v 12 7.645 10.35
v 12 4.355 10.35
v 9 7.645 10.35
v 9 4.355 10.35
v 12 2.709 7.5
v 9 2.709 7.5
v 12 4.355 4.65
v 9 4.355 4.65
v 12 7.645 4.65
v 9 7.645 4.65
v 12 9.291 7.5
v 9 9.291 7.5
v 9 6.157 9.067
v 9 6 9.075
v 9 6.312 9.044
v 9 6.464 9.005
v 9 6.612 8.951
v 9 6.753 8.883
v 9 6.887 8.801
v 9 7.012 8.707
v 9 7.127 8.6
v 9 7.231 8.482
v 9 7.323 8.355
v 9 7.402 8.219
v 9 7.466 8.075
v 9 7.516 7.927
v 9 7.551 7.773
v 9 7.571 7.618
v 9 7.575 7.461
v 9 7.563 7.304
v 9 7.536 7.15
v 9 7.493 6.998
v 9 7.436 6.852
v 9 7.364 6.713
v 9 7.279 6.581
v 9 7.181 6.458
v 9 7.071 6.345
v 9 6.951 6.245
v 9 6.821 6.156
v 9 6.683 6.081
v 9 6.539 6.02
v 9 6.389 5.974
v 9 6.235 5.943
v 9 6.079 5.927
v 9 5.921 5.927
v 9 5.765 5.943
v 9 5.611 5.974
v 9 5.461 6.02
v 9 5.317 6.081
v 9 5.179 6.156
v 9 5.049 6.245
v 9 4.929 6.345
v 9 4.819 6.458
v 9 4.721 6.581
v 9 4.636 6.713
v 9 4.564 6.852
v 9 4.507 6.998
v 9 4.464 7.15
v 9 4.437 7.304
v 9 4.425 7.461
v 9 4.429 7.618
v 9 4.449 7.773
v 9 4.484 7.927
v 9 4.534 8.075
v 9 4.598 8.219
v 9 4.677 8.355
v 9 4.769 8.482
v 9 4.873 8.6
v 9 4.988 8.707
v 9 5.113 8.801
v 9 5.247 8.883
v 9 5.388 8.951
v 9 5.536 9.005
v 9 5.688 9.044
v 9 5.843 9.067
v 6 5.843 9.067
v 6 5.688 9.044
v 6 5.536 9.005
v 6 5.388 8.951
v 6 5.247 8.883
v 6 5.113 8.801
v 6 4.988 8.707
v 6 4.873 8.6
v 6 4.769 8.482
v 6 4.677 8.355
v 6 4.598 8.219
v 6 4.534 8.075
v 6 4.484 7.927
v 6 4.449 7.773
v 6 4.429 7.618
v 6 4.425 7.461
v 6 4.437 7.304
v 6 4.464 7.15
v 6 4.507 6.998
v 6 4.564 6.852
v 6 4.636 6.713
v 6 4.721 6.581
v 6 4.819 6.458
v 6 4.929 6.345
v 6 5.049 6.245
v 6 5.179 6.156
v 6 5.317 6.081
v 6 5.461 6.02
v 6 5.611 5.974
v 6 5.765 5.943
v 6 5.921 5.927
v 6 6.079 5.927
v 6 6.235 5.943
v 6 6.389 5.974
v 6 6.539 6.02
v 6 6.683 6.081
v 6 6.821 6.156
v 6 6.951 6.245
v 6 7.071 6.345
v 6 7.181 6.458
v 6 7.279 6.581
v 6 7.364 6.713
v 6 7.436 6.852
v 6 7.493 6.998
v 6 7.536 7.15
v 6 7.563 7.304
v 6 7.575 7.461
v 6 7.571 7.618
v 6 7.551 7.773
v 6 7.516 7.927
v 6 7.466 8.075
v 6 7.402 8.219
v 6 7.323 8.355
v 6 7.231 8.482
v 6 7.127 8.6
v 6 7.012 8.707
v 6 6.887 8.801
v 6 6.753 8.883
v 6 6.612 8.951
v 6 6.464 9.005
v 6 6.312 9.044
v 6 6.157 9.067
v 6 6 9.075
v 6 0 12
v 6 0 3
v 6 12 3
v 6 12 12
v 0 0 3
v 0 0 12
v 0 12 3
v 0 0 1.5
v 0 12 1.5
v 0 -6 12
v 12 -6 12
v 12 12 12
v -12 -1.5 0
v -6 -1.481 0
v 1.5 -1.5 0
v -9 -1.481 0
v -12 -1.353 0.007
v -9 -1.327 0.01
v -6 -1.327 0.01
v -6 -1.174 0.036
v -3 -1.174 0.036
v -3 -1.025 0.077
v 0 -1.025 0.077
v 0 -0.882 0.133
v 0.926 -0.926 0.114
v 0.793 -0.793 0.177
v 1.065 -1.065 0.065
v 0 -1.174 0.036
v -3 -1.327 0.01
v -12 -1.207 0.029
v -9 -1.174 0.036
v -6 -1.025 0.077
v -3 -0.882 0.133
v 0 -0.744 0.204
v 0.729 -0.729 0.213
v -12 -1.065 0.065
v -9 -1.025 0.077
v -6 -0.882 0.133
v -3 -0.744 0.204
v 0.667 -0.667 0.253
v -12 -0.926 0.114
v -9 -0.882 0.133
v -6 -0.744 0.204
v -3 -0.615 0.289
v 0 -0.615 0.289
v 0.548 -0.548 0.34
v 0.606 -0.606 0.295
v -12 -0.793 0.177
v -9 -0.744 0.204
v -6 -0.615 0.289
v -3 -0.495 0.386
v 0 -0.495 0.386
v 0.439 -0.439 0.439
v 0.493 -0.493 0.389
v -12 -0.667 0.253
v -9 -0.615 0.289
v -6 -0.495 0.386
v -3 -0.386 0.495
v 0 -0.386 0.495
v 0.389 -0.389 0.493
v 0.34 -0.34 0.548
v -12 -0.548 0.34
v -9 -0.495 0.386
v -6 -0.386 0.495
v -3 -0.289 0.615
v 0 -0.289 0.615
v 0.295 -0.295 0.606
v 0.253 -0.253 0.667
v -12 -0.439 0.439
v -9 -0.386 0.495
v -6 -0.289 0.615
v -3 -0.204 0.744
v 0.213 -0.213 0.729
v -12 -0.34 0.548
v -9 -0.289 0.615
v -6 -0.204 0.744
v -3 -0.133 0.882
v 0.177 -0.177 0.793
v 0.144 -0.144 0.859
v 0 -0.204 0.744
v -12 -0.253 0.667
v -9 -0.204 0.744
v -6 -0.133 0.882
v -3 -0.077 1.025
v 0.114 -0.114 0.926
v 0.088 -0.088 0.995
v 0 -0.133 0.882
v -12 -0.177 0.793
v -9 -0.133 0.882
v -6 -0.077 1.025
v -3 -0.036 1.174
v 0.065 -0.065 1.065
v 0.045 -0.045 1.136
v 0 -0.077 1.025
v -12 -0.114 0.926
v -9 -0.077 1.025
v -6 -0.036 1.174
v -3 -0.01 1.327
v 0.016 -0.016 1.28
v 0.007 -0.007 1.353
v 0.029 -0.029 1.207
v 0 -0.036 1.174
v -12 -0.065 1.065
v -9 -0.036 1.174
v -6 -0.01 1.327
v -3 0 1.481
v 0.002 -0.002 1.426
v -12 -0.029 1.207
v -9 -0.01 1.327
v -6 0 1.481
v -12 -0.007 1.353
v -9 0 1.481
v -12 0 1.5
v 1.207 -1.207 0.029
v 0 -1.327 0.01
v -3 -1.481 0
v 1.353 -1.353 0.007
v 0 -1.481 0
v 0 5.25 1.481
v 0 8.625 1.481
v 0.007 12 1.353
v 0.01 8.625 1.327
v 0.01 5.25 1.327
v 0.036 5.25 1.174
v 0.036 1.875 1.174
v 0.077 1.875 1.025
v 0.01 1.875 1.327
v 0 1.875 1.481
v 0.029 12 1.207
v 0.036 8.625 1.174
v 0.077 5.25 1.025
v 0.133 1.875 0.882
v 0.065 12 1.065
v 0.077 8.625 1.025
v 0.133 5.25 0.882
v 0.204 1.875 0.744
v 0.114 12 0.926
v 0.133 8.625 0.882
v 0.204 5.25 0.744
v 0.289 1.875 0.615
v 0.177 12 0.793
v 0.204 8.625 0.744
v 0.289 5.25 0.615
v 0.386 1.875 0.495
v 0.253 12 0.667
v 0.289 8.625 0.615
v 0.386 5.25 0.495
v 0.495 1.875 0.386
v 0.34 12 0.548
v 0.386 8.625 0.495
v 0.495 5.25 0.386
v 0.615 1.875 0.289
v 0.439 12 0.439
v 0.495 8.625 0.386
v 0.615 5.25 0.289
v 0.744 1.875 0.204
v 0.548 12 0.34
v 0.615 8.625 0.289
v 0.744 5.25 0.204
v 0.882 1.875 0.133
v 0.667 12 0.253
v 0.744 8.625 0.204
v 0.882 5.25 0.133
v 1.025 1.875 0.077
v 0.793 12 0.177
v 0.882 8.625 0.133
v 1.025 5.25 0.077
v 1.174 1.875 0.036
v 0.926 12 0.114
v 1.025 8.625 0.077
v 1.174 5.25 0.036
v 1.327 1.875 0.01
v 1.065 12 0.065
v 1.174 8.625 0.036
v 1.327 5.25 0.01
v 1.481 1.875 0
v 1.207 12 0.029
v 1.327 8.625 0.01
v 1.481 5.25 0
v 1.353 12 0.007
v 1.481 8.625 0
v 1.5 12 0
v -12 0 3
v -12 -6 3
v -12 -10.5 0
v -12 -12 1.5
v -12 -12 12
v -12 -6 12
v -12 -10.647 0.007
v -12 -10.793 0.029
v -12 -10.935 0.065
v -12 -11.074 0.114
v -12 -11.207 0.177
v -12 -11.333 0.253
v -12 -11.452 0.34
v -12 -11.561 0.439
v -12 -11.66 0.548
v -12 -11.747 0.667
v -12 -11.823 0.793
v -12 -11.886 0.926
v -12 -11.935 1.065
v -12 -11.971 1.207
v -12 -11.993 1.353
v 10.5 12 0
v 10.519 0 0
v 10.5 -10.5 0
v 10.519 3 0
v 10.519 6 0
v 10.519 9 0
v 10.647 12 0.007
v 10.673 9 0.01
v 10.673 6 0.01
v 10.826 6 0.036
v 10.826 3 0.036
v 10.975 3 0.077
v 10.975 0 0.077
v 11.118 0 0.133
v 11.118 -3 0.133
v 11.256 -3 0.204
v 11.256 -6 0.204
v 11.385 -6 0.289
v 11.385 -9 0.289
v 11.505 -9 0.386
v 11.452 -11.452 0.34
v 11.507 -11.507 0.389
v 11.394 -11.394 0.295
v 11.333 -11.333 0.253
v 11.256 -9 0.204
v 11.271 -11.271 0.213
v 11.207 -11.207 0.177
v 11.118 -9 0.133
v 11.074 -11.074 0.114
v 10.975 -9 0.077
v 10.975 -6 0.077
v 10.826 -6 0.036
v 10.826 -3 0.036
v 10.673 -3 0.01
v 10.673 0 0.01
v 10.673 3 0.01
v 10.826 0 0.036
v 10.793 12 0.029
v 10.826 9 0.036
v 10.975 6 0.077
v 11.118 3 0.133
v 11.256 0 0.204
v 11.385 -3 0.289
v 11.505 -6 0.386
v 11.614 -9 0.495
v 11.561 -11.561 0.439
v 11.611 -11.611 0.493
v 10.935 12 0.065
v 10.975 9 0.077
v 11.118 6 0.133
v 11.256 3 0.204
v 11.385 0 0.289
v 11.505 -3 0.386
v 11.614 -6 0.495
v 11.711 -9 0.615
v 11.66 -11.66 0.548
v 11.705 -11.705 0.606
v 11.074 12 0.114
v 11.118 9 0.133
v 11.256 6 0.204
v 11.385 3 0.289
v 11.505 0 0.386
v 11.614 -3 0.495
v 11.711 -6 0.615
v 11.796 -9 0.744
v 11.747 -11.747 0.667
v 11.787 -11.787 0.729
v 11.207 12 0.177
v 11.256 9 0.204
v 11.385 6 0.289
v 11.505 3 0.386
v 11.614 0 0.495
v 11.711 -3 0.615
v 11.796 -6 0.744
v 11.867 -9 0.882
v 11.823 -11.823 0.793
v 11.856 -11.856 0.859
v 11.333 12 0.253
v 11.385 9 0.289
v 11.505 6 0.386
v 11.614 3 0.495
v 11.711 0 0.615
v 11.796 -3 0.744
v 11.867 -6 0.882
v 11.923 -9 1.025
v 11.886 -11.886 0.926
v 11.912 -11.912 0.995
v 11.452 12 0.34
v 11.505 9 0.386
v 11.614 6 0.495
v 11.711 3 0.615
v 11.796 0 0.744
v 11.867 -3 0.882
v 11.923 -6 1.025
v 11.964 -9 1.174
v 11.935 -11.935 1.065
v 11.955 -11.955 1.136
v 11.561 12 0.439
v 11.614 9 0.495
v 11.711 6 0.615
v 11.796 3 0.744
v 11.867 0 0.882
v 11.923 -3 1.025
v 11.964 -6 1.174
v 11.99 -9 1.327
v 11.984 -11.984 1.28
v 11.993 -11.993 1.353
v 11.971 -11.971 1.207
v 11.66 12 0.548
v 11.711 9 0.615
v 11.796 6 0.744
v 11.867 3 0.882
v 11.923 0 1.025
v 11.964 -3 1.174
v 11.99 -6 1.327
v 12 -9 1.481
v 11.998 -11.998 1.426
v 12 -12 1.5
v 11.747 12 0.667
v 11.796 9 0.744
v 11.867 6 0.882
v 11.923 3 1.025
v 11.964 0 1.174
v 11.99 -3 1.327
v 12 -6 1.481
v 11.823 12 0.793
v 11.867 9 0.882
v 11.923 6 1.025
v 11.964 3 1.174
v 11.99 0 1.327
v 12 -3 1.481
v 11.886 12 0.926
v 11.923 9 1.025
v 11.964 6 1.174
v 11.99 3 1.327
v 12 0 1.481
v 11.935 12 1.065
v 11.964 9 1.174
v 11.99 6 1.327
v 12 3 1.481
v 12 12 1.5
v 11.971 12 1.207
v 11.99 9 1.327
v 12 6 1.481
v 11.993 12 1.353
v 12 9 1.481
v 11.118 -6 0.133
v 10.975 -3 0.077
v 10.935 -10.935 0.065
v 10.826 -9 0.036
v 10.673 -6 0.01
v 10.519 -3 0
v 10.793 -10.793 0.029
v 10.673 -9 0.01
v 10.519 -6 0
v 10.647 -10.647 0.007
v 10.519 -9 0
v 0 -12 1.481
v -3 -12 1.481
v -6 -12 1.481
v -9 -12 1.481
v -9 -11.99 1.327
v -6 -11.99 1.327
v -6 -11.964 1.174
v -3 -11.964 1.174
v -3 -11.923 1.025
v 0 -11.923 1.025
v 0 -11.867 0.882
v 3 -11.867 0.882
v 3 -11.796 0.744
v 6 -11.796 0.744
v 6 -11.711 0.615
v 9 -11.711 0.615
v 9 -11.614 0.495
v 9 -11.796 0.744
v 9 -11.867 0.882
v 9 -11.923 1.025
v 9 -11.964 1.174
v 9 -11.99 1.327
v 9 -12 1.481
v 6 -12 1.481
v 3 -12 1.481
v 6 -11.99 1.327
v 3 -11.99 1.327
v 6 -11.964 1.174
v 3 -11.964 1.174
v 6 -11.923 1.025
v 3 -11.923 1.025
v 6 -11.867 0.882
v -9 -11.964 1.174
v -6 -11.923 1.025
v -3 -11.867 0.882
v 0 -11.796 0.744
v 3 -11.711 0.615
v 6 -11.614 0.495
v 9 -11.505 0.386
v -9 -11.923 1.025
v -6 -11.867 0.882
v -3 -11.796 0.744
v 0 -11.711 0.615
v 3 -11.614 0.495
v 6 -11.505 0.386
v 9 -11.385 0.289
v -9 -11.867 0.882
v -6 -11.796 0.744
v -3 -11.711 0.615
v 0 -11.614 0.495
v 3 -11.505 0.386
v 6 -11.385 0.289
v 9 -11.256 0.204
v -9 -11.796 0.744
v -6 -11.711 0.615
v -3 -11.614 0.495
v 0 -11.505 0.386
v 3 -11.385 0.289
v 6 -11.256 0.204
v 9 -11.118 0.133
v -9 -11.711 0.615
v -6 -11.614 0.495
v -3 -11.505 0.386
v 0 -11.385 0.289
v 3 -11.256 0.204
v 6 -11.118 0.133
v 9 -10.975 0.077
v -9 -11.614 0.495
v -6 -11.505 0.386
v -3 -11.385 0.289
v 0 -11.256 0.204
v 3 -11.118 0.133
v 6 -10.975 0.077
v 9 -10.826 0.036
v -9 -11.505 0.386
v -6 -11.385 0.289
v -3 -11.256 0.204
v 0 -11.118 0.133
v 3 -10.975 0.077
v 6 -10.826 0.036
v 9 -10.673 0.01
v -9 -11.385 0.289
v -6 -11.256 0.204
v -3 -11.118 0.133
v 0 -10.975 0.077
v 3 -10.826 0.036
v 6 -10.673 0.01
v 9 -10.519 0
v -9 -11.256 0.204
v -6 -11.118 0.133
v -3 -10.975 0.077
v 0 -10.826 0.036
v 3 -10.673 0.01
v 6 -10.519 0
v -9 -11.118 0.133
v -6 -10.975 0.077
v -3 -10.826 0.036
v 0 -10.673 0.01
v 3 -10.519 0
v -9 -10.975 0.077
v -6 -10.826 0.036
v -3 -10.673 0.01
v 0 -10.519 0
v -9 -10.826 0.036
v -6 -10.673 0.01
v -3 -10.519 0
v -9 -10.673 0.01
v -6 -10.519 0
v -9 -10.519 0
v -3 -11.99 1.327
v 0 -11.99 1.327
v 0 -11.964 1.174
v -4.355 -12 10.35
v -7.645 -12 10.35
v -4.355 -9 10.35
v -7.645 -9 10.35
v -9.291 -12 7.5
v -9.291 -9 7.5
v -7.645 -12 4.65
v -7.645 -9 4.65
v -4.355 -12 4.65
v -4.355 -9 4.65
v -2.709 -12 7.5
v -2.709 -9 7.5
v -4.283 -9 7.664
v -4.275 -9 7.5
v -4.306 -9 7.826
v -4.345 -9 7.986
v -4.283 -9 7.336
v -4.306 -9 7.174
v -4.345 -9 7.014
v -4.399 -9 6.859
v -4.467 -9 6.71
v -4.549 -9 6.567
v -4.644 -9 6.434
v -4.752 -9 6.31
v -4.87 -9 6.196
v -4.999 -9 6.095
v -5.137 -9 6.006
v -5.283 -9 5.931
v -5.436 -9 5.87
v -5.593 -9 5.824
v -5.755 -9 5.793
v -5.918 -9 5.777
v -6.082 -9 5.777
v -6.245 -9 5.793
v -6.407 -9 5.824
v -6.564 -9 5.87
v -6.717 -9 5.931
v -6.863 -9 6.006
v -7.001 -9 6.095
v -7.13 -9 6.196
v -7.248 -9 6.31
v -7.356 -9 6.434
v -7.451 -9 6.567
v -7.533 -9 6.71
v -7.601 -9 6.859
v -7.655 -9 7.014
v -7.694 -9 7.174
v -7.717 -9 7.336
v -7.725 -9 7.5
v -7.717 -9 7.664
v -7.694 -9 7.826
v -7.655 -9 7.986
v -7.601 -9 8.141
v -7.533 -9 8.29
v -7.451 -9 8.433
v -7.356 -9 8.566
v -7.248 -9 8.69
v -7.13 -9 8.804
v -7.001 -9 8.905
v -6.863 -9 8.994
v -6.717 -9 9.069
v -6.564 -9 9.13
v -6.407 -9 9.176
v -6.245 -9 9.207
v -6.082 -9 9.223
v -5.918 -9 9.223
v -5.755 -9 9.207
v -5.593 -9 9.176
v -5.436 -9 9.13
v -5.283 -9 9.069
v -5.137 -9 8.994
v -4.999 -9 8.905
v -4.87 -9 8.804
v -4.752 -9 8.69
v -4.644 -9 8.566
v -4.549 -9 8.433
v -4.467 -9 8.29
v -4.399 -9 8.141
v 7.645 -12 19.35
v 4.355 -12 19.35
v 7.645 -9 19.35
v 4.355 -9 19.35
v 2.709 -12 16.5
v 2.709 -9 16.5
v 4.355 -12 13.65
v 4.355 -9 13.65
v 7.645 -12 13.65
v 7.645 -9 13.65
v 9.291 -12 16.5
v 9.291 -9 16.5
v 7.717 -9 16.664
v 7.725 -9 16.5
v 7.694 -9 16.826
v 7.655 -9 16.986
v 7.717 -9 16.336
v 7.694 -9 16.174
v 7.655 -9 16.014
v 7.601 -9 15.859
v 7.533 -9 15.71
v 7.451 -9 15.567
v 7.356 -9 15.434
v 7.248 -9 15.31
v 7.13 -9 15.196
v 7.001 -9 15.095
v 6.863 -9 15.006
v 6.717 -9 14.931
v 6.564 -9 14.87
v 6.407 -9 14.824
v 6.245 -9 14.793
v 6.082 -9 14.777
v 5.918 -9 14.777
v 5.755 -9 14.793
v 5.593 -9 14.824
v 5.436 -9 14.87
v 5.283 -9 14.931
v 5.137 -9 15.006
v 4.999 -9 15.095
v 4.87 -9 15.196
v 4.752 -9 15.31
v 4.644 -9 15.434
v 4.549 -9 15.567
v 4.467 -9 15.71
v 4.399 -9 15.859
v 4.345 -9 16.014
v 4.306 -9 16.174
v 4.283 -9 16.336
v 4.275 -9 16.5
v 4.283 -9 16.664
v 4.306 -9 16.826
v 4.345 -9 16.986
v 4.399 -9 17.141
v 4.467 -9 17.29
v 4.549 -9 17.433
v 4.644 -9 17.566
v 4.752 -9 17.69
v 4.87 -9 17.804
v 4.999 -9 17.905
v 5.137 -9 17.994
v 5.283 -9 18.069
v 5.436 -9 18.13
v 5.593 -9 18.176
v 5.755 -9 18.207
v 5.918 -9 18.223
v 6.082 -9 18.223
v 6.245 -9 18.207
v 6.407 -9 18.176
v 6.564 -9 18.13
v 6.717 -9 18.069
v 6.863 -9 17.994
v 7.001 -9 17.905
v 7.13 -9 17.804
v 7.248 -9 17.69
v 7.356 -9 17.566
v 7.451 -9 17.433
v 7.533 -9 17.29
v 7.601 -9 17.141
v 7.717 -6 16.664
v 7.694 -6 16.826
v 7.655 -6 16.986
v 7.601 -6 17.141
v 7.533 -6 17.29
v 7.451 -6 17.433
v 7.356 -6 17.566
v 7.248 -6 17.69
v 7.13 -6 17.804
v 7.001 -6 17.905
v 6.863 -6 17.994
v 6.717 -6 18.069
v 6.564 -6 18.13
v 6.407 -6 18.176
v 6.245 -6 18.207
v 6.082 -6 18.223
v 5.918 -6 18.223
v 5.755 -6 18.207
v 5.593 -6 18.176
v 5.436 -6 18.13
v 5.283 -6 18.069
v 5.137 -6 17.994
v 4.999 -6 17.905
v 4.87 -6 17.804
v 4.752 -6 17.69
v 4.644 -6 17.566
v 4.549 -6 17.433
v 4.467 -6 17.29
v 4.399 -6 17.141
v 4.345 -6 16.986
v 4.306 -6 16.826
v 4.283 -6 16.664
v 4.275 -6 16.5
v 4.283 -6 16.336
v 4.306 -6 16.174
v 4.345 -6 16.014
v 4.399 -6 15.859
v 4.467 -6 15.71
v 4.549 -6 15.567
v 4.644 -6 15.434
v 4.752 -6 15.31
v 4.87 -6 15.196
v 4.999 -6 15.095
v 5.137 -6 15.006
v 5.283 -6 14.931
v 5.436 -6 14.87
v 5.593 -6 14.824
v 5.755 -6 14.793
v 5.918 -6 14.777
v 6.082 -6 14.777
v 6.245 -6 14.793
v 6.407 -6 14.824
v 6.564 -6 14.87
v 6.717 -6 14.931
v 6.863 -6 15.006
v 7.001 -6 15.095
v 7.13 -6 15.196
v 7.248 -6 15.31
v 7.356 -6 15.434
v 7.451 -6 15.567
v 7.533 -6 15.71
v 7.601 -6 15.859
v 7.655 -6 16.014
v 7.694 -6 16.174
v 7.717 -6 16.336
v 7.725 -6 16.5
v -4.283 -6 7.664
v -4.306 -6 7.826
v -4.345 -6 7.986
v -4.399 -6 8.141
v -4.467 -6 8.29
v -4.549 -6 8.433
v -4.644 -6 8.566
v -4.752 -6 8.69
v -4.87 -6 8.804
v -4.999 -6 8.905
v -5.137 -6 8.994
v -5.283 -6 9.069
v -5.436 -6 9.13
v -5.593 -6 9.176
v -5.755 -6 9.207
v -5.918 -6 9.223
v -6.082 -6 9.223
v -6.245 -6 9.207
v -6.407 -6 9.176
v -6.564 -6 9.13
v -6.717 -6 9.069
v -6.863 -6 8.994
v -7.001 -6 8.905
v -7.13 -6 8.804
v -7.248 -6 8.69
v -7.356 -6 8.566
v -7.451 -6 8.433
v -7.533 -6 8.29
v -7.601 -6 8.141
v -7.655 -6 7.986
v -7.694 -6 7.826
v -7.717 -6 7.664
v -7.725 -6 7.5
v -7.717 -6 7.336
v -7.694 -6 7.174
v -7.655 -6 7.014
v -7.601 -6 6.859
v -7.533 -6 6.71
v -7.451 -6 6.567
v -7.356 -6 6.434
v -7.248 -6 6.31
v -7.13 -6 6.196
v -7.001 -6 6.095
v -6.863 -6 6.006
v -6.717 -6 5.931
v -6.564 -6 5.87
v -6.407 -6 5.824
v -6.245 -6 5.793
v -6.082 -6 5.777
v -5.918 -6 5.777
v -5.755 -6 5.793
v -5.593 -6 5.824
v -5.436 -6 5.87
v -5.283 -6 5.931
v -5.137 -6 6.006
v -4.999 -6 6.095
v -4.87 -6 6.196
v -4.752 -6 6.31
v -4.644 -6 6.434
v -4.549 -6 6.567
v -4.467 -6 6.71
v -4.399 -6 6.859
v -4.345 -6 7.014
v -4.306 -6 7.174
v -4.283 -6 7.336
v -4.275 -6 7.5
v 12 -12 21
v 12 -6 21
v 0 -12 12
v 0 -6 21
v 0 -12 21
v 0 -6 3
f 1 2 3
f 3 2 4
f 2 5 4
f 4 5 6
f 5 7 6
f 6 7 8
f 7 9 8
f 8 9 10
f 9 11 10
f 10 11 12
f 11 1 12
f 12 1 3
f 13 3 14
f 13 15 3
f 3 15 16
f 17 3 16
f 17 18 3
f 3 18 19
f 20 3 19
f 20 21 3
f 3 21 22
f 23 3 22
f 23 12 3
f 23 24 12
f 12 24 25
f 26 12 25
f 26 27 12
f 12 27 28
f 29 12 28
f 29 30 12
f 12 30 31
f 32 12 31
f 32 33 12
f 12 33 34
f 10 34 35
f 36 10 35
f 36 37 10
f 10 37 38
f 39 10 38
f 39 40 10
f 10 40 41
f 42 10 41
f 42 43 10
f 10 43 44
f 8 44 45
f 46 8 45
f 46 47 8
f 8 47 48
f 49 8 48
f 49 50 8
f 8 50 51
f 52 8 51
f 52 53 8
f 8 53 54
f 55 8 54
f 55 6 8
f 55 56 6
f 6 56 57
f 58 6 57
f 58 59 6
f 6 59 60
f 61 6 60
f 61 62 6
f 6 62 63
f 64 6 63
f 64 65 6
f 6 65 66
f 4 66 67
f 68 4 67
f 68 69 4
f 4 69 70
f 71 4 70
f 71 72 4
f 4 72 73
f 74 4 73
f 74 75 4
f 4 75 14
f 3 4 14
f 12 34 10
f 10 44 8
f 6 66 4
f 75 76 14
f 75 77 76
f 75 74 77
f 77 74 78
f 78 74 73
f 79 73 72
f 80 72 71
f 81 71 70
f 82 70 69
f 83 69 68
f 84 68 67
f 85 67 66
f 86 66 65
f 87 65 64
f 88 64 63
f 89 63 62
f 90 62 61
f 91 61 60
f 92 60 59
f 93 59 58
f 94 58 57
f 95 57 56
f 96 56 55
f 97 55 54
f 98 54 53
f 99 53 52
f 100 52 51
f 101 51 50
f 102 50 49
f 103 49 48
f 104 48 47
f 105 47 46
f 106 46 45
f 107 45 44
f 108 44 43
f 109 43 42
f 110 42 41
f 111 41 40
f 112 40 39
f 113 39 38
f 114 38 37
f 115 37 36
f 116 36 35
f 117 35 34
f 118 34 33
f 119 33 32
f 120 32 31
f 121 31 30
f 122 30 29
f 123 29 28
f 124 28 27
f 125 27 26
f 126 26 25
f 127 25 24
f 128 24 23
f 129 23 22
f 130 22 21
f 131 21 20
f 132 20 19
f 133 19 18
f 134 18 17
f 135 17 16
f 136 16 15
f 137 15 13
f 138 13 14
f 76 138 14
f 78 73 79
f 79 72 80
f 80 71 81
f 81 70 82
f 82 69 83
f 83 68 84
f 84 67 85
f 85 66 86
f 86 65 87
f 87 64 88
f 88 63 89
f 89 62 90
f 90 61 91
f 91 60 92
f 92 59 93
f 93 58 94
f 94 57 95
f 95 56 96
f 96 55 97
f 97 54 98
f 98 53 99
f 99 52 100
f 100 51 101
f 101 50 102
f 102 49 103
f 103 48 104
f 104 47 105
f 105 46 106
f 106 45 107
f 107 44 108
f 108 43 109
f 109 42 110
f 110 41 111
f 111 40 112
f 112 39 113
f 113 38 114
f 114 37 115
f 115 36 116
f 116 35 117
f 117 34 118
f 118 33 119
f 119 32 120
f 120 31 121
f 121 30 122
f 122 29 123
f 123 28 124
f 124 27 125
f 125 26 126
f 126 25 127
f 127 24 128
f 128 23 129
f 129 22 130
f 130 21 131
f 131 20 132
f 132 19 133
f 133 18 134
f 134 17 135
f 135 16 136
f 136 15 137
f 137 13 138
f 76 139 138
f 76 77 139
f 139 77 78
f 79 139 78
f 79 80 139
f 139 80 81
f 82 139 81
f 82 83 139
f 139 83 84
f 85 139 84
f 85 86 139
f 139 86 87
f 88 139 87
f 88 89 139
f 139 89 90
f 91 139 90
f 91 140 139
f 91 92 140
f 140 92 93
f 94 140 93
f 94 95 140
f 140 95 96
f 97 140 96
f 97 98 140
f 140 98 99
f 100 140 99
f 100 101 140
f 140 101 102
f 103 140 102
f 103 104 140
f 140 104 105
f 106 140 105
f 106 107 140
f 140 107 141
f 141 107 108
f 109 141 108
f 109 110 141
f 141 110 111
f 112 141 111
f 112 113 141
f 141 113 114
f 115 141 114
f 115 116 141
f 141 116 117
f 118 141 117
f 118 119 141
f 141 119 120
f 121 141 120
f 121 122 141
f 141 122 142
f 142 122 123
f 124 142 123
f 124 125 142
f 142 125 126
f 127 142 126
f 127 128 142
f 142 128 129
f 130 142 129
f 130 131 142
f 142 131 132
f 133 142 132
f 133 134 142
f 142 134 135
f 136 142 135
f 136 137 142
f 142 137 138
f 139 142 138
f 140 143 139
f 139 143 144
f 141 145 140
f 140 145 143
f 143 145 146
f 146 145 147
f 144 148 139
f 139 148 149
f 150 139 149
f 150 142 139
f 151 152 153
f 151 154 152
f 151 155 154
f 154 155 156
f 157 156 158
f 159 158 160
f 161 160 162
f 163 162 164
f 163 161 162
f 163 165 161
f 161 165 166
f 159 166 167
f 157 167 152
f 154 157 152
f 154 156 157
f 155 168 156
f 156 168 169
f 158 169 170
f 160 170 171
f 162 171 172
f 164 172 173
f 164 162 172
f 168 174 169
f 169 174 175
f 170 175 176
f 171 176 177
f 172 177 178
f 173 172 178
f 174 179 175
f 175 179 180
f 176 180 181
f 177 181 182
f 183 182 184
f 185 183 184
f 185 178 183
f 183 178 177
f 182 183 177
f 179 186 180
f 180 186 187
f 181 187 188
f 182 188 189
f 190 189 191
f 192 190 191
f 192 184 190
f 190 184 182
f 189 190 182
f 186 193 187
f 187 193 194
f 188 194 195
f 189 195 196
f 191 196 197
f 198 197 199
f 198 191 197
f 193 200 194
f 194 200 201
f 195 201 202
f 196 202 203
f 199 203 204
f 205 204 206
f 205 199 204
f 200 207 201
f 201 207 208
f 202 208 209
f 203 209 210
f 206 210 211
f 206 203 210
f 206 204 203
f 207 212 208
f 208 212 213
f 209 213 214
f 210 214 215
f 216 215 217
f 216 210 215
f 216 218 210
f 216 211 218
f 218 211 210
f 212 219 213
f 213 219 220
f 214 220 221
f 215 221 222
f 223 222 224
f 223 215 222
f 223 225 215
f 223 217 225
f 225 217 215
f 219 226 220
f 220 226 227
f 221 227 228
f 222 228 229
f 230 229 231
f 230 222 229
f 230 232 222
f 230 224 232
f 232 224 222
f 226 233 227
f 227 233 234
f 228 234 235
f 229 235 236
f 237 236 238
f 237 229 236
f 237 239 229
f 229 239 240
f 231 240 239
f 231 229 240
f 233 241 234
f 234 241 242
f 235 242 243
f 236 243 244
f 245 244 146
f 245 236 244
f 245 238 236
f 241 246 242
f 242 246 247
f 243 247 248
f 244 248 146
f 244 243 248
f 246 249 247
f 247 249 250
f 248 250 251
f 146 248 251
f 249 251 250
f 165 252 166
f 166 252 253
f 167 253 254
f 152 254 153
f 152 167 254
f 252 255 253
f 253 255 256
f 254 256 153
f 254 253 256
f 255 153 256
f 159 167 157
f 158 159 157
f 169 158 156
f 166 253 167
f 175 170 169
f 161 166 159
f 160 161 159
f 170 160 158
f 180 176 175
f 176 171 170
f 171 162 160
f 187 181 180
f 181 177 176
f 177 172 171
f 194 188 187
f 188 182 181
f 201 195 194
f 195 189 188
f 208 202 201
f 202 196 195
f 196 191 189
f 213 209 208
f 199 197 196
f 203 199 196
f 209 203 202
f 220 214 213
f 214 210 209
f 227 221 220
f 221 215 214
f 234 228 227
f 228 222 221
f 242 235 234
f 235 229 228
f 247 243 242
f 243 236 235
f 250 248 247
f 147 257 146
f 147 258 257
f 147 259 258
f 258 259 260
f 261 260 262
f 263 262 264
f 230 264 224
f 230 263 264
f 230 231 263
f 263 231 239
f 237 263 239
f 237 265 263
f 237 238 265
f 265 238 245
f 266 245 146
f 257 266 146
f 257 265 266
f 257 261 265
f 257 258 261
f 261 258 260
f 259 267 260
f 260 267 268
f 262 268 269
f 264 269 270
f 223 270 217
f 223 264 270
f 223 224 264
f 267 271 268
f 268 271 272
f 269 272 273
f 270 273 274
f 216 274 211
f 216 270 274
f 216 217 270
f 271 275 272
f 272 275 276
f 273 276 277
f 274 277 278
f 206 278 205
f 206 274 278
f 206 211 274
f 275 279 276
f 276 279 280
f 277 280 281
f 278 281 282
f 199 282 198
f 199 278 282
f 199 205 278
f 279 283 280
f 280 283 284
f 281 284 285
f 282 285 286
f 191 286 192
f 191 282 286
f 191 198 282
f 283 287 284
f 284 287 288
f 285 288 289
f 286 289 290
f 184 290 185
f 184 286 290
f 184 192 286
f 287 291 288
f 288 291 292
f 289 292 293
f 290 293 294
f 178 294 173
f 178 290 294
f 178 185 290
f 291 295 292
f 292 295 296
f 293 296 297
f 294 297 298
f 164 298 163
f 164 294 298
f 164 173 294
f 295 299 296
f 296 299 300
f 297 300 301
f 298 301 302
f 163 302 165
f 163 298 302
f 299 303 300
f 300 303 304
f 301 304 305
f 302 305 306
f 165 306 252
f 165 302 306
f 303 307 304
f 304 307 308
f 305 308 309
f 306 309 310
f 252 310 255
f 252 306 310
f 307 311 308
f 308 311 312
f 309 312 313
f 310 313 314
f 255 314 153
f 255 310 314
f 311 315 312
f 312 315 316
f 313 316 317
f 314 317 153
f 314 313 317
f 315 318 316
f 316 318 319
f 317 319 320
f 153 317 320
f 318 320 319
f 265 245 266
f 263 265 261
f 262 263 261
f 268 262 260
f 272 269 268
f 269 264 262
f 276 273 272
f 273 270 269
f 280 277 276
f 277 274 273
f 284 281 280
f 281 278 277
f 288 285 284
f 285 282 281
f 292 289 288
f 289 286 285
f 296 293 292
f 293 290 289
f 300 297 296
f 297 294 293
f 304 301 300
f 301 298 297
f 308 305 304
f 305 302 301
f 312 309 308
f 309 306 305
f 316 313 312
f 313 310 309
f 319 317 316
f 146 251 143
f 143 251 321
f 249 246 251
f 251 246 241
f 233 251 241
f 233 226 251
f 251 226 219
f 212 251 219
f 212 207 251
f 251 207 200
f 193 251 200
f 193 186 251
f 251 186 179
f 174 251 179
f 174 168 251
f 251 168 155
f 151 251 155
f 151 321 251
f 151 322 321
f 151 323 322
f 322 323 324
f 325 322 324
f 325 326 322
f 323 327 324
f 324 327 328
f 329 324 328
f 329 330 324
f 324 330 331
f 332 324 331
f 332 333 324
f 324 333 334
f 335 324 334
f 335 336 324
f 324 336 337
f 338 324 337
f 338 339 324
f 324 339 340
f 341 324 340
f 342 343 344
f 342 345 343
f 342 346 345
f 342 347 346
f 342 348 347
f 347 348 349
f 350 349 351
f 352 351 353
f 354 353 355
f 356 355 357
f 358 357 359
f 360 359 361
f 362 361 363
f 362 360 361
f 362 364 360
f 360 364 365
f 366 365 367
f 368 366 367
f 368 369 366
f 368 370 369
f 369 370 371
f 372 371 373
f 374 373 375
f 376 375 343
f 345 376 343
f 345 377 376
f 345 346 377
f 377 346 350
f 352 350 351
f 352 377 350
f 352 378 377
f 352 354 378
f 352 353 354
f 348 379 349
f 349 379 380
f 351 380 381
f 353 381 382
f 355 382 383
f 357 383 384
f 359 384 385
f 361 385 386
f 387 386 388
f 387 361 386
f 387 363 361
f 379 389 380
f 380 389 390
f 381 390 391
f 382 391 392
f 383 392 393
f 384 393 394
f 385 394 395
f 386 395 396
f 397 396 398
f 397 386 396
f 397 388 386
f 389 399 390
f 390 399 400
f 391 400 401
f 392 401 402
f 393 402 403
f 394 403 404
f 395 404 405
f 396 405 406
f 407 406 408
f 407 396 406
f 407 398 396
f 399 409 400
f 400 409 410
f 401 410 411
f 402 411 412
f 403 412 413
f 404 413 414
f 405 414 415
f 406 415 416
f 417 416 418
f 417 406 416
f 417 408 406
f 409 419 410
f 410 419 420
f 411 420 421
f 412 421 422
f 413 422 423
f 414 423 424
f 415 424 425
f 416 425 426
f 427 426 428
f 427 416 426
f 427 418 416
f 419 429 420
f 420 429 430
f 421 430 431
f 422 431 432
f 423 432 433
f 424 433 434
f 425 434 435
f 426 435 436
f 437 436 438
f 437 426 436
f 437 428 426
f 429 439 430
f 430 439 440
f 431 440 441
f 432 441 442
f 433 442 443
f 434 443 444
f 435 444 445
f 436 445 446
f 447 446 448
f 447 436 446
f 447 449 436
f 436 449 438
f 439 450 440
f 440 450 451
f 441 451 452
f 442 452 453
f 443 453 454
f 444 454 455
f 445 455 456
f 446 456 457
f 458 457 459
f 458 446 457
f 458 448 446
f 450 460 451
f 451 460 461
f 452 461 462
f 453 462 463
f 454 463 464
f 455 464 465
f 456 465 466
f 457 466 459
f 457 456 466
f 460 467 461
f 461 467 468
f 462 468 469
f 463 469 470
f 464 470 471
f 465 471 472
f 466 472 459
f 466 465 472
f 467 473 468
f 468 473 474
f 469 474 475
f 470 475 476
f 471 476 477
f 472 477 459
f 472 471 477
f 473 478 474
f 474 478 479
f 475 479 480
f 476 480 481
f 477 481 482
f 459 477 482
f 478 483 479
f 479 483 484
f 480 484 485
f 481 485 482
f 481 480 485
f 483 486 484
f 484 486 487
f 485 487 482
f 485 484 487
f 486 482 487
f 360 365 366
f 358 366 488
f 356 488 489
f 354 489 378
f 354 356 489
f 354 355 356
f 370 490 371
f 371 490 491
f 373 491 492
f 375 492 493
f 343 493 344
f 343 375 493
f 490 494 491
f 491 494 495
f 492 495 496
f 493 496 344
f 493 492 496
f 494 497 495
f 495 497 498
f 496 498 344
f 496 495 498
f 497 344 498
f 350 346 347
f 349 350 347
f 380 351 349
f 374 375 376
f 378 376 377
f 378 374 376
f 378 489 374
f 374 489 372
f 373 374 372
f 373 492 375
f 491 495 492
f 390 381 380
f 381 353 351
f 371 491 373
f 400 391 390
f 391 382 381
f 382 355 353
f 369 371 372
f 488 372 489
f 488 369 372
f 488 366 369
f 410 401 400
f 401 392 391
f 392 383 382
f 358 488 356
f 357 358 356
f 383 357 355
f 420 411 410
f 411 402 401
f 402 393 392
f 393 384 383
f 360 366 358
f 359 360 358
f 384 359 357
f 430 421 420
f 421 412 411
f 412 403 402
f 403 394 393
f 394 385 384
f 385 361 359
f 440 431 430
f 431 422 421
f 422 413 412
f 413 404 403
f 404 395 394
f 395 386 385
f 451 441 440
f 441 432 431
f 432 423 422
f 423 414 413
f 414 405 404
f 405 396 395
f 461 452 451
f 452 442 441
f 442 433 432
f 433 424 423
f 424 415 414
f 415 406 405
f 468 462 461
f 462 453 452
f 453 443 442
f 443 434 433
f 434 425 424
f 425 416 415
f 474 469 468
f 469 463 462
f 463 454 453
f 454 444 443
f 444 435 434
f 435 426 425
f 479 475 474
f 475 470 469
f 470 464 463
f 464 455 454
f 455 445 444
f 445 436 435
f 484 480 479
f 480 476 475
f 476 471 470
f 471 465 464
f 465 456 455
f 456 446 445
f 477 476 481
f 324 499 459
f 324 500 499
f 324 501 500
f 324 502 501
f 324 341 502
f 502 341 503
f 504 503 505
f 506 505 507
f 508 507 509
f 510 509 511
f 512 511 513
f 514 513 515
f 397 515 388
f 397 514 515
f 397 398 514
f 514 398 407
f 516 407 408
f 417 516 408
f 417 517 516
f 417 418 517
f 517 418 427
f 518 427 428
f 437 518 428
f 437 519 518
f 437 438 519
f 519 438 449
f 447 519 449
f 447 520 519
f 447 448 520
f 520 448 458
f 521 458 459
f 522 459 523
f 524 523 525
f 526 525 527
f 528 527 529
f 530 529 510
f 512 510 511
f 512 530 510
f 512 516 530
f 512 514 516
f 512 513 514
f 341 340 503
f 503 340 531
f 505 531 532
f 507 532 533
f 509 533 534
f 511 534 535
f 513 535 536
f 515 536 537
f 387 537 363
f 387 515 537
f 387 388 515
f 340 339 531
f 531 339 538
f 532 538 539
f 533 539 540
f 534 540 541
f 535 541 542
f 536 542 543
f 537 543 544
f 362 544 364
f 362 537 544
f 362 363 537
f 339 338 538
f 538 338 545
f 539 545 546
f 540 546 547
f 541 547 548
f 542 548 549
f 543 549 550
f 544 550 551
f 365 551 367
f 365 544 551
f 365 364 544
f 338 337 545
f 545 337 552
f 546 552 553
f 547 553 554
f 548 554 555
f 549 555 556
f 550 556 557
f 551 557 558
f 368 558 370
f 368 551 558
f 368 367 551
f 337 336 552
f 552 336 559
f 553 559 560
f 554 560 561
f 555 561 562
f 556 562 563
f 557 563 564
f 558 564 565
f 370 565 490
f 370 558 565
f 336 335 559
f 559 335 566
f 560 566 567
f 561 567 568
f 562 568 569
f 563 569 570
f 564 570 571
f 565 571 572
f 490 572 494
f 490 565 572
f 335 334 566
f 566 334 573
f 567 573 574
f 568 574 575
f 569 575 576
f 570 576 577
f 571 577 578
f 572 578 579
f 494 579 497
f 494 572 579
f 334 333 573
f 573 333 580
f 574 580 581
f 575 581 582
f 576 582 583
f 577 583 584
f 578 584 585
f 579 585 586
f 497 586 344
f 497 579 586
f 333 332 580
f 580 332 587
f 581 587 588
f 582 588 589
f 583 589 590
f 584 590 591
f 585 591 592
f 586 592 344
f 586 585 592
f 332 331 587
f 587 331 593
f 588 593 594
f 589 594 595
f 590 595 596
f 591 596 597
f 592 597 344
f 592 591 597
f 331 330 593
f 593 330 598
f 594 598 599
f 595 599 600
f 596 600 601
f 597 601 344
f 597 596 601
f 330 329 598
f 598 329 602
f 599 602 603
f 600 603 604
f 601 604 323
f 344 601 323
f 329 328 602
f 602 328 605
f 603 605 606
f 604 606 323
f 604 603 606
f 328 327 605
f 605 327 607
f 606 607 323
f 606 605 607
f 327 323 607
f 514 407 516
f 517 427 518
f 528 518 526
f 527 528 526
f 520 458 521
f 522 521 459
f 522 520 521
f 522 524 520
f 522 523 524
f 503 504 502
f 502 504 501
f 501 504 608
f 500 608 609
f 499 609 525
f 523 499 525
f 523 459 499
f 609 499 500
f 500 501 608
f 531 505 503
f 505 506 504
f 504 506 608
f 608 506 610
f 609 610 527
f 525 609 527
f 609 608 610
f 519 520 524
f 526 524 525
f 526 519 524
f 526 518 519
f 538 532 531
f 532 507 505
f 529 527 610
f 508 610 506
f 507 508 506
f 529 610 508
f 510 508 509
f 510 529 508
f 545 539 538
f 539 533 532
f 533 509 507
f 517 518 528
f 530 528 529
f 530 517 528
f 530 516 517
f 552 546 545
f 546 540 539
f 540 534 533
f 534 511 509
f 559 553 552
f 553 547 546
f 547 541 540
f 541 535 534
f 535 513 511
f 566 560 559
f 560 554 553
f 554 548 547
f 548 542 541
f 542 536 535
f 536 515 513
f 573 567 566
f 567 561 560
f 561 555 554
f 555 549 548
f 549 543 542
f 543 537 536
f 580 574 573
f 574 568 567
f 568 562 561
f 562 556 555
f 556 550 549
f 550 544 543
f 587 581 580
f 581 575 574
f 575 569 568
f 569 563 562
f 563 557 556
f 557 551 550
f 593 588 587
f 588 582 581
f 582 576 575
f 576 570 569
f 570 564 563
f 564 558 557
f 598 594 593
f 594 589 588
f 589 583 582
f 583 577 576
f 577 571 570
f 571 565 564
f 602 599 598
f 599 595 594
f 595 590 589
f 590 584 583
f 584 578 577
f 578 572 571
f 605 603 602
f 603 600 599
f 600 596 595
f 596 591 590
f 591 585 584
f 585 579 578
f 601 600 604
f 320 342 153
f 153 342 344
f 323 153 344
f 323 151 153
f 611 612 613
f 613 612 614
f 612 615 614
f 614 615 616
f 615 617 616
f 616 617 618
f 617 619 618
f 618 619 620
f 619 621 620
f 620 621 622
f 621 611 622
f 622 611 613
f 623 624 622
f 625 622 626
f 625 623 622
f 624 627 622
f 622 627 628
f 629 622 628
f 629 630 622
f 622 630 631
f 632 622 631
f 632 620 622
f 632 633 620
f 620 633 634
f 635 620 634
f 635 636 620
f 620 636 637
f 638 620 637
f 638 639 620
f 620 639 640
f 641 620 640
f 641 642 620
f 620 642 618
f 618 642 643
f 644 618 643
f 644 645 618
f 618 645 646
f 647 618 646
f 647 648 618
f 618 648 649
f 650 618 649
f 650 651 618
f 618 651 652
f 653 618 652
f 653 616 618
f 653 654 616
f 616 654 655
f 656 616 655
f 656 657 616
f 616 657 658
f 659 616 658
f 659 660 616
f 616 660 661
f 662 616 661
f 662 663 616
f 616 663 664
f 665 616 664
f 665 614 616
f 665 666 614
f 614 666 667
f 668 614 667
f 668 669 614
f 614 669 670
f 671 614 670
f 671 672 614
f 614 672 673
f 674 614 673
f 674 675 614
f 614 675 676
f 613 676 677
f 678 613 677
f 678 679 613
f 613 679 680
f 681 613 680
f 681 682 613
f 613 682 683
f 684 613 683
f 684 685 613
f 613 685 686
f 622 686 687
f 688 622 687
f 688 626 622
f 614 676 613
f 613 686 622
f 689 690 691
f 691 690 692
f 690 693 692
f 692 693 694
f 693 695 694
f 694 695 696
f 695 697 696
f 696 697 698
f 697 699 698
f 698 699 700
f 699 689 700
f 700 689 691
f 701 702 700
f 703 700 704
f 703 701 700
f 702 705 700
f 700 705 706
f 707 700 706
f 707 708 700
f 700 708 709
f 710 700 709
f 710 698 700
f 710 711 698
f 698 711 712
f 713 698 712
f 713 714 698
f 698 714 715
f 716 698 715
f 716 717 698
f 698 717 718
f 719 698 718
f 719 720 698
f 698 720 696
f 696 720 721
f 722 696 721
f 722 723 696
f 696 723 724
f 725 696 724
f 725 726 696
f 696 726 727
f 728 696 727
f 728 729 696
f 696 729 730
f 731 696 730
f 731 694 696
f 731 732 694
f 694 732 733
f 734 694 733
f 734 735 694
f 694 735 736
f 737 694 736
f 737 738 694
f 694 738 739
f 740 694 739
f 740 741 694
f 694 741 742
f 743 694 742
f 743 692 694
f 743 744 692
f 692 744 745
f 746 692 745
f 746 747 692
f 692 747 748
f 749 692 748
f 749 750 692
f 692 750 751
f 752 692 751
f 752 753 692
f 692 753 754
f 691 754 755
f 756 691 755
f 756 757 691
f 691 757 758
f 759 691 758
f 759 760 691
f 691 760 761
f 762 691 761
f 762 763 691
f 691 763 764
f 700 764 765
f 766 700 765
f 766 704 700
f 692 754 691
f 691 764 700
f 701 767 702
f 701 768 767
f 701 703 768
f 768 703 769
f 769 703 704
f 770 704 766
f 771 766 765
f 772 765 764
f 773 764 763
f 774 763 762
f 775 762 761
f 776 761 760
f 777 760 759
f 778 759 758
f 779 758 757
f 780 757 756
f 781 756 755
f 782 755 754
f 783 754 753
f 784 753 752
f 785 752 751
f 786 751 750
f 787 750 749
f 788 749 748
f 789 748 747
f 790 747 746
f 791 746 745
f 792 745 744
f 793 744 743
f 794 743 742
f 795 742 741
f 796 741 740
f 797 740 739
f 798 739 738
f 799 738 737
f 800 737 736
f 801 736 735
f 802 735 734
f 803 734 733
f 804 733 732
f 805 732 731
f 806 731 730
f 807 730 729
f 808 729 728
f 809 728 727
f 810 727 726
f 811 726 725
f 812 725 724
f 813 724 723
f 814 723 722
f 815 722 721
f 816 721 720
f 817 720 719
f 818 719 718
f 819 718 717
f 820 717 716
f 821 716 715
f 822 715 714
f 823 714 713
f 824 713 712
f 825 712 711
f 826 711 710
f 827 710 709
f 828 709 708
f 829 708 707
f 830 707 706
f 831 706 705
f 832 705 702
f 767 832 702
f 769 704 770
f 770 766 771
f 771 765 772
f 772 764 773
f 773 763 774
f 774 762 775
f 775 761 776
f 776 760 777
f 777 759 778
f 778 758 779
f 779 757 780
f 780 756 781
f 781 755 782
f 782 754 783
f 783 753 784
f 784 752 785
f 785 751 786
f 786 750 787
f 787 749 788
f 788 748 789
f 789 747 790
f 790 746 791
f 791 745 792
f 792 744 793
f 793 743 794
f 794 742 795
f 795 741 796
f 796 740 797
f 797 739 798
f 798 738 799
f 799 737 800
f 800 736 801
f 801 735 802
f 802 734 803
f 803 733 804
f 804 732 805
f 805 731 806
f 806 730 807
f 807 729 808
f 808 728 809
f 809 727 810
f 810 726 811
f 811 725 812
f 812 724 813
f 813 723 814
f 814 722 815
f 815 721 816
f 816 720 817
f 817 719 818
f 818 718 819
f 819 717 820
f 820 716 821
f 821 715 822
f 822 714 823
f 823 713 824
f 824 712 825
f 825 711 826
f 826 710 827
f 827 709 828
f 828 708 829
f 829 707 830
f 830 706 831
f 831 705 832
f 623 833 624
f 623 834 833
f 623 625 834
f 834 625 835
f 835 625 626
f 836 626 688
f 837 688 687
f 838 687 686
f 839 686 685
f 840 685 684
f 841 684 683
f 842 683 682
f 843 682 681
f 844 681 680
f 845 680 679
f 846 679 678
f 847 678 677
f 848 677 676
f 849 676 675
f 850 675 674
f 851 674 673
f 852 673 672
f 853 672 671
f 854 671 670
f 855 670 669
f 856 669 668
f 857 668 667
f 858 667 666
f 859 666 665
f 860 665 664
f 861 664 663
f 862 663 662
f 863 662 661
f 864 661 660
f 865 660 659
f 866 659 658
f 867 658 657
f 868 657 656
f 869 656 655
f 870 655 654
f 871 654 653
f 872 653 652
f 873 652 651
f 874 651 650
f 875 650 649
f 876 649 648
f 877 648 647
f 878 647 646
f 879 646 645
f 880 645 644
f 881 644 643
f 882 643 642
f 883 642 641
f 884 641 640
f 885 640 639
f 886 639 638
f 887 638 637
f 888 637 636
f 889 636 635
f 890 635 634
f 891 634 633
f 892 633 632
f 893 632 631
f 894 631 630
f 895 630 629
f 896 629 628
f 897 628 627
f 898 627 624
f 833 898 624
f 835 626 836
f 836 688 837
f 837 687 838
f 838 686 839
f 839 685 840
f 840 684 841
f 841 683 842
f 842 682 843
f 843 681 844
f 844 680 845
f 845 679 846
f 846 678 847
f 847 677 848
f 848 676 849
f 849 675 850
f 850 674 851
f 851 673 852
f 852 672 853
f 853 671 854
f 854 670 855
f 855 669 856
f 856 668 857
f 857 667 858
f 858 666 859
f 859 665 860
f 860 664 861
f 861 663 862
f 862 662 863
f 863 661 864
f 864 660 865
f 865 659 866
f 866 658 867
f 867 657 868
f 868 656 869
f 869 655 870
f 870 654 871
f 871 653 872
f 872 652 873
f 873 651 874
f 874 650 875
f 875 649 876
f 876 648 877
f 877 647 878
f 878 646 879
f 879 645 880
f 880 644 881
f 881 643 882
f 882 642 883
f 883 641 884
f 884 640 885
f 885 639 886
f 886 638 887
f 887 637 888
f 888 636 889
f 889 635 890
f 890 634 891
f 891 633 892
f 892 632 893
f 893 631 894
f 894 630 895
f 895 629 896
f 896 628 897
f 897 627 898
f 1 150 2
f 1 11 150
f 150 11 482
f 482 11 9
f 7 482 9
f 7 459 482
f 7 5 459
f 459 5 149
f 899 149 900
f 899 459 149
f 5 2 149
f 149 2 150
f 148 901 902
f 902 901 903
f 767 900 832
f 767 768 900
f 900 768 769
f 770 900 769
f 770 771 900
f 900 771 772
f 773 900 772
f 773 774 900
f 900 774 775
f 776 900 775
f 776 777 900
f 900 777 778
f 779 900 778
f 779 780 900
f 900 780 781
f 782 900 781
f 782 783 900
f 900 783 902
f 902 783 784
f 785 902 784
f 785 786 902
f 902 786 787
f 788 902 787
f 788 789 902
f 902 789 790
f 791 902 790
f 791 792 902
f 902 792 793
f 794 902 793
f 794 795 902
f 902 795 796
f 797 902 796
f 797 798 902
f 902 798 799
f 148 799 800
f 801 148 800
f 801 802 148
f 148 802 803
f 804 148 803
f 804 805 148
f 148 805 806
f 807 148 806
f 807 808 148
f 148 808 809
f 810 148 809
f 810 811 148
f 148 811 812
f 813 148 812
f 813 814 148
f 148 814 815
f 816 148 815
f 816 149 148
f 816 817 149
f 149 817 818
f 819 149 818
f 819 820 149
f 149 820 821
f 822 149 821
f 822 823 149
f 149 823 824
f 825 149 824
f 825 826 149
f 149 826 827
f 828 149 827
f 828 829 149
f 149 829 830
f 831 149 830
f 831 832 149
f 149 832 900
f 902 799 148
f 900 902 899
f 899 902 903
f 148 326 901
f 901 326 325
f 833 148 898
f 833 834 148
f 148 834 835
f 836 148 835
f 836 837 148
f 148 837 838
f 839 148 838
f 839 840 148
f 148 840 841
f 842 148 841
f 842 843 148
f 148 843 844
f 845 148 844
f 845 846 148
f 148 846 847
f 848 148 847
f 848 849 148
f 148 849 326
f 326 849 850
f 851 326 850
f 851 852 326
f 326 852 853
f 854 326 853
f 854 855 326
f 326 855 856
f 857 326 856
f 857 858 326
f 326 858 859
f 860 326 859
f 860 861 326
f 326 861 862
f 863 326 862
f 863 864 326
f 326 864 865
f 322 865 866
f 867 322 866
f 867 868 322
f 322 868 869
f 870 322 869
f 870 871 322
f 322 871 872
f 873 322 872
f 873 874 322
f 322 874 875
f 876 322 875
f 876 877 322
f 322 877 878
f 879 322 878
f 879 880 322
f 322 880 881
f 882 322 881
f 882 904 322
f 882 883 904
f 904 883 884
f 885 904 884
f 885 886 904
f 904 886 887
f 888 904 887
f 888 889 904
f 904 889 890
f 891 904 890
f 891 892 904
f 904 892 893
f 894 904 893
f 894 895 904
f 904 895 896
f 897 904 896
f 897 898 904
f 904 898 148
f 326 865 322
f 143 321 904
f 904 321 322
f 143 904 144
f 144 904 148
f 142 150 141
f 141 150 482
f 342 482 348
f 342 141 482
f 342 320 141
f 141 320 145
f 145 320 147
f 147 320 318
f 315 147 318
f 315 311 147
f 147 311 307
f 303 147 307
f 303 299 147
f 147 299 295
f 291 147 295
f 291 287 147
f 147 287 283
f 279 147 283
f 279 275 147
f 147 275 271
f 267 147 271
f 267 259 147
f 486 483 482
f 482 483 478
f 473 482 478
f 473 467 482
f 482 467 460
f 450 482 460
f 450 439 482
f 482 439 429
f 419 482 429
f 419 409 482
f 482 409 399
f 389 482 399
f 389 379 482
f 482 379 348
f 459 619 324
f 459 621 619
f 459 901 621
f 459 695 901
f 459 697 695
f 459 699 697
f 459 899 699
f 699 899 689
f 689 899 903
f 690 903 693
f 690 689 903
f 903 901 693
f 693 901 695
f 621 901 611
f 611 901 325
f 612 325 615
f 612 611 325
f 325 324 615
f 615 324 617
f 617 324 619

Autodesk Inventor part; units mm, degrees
ref_plane "YZ Plane" through (0, 0, 0) normal (1, 0, 0) x (0, 1, 0)
ref_plane "XZ Plane" through (0, 0, 0) normal (0, 1, 0) x (-1, 0, 0)
ref_plane "XY Plane" through (0, 0, 0) normal (0, 0, 1) x (1, 0, 0)
sketch "Sketch1" plane through (0, 0, 0) normal (0, 0, 1) x (1, 0, 0)
  line L0 (0, 0) -> (12, 0)
  line L1 (12, 0) -> (12, 12)
  line L2 (12, 12) -> (0, 12)
  line L3 (0, 12) -> (0, 0)
  line L4 (12, 0) -> (0, 0)
  line L5 (0, 0) -> (0, -12)
  line L6 (0, -12) -> (12, -12)
  line L7 (12, -12) -> (12, 0)
  line L8 (12, 0) -> (24, 0)
  line L9 (24, 0) -> (24, -12)
  line L10 (24, -12) -> (12, -12)
  line L11 (12, -12) -> (12, 0)
  line L12 (0, -12) -> (-12, -12)
  line L13 (-12, -12) -> (-12, 0)
  line L14 (-12, 0) -> (0, 0)
  line L15 (0, 0) -> (0, -12)
  line L16 (0, -12) -> (12, -12)
  line L17 (12, -12) -> (12, -24)
  line L18 (12, -24) -> (0, -24)
  line L19 (0, -24) -> (0, -12)
  dimension "d0" = 12
  dimension "d1" = 12
  dimension "d2" = 12
  dimension "d3" = 12
  dimension "d4" = 12
  dimension "d5" = 12
  dimension "d6" = 12
  dimension "d7" = 12
  dimension "d8" = 12
  dimension "d9" = 12
extrude "Extrusion1" add sketch "Sketch1" along normal blind 3
sketch "Sketch2" plane through (0, 0, 3) normal (0, 0, 1) x (1, 0, 0)
  line L0 (-12, 0) -> (-12, -12) projected
  line L1 (-12, -12) -> (-12, -6)
  line L2 (-12, -6) -> (0, -6)
  line L3 (-12, -12) -> (0, -12) projected
  line L4 (0, -6) -> (0, -12)
  line L5 (0, -12) -> (-12, -12)
  line L6 (12, -24) -> (12, -12) projected
  line L7 (12, -12) -> (12, -6)
  line L8 (12, -6) -> (24, -6)
  line L9 (24, -12) -> (24, 0) projected
  line L10 (12, -12) -> (24, -12) projected
  line L11 (24, -6) -> (24, -12)
  line L12 (24, -12) -> (12, -12)
  line L13 (0, 0) -> (0, -6)
  line L14 (12, 0) -> (12, 12) projected
  line L15 (0, 0) -> (12, 0)
  line L16 (12, 0) -> (12, -6)
  line L17 (12, -12) -> (0, -12)
  line L18 (0, 12) -> (0, 0) projected
  line L19 (0, 0) -> (0, 12)
  line L20 (0, 12) -> (6, 12)
  line L21 (12, 12) -> (0, 12) projected
  line L22 (6, 12) -> (6, 0)
  line L23 (6, 0) -> (0, 0)
  line L24 (0, -12) -> (0, -24) projected
  line L25 (0, -12) -> (0, -24)
  line L26 (0, -24) -> (6, -24)
  line L27 (0, -24) -> (12, -24) projected
  line L28 (6, -24) -> (6, -12)
  line L29 (6, -12) -> (0, -12)
  dimension "d12" = 6
  dimension "d13" = 12
extrude "Extrusion2" add sketch "Sketch2" along normal blind 9 contours L2 L4 L3 L0 | L13 L15 L16 L7 L17 L4 | L17 L28 L26 L24 | L18 L20 L22 L15 | L7 L8 L9 L10
sketch "Sketch3" plane through (0, 0, 12) normal (0, 0, 1) x (1, 0, 0)
  line L0 (0, -6) -> (12, -6)
  line L1 (12, -12) -> (6, -12) projected
  line L2 (12, -6) -> (12, -12)
  line L3 (0, -12) -> (0, -24) projected
  line L4 (12, -12) -> (0, -12)
  line L5 (0, -12) -> (0, -6)
  point P0 (0, 0)
extrude "Extrusion3" add sketch "Sketch3" along normal blind 9
sketch "Sketch4" plane through (6, -12, 3) normal (0, -1, 0) x (1, 0, 0)
  point P0 (-6, -3)
sketch "Sketch5" plane through (-12, -6, 3) normal (0, 1, 0) x (1, 0, 0)
  circle A0 centre (6, -4.5) radius 1.725
  line L0 (0, 0) -> (0, -9) projected
  line L1 (12, -9) -> (0, -9) projected
  circle A1 centre (18, -13.5) radius 1.725
  line L2 (24, -18) -> (12, -18) projected
  line L3 (24, -9) -> (24, -18) projected
  circle A2 centre (30, -4.5) radius 1.725
  line L4 (36, 0) -> (36, -9) projected
  line L5 (36, -9) -> (24, -9) projected
  point P0 (12, 3)
  dimension "d19" = 3.45
  dimension "d20" = 6
  dimension "d21" = 4.5
  dimension "d22" = 3.45
  dimension "d23" = 4.5
  dimension "d24" = 6
  dimension "d25" = 3.45
  dimension "d26" = 6
  dimension "d27" = 4.5
extrude "Extrusion4" cut sketch "Sketch5" against normal blind 3
sketch "Sketch6" plane through (6, -12, 3) normal (0, -1, 0) x (1, 0, 0)
  circle A0 centre (-12, 4.5) radius 1.725 projected
  line L0 (-10.3546, 7.35) -> (-8.7091, 4.5)
  line L1 (-8.7091, 4.5) -> (-10.3546, 1.65)
  line L2 (-10.3546, 1.65) -> (-13.6454, 1.65)
  line L3 (-13.6454, 1.65) -> (-15.2909, 4.5)
  line L4 (-15.2909, 4.5) -> (-13.6454, 7.35)
  line L5 (-13.6454, 7.35) -> (-10.3546, 7.35)
  circle A1 centre (12, 4.5) radius 1.725 projected
  line L6 (13.6454, 7.35) -> (15.2909, 4.5)
  line L7 (15.2909, 4.5) -> (13.6454, 1.65)
  line L8 (13.6454, 1.65) -> (10.3546, 1.65)
  line L9 (10.3546, 1.65) -> (8.7091, 4.5)
  line L10 (8.7091, 4.5) -> (10.3546, 7.35)
  line L11 (10.3546, 7.35) -> (13.6454, 7.35)
  circle A2 centre (0, 13.5) radius 1.725 projected
  line L12 (1.6454, 16.35) -> (3.2909, 13.5)
  line L13 (3.2909, 13.5) -> (1.6454, 10.65)
  line L14 (1.6454, 10.65) -> (-1.6454, 10.65)
  line L15 (-1.6454, 10.65) -> (-3.2909, 13.5)
  line L16 (-3.2909, 13.5) -> (-1.6454, 16.35)
  line L17 (-1.6454, 16.35) -> (1.6454, 16.35)
  point P0 (-6, -3)
  dimension "d30" = 2.85
  dimension "d31" = 2.85
  dimension "d32" = 2.85
extrude "Extrusion5" cut sketch "Sketch6" against normal blind 3 contours A0 | L0 L1 L2 L3 L4 L5 | A1 | L6 L7 L8 L9 L10 L11 | A2 | L12 L13 L14 L15 L16 L17
sketch "Sketch7" plane through (6, 0, 3) normal (1, 0, 0) x (0, 0, -1)
  circle A0 centre (-4.5, 6) radius 1.725
  circle A1 centre (-4.5, -18) radius 1.725
  line L0 (-9, 0) -> (-9, 12) projected
  line L1 (-9, -24) -> (-9, -12) projected
  line L2 (0, -24) -> (-9, -24) projected
  line L3 (0, 12) -> (-9, 12) projected
  point P0 (3, 0)
  dimension "d35" = 3.45
  dimension "d36" = 3.45
  dimension "d37" = 4.5
  dimension "d38" = 4.5
  dimension "d39" = 6
  dimension "d40" = 6
extrude "Extrusion6" cut sketch "Sketch7" against normal blind 3
sketch "Sketch8" plane through (0, -6, 3) normal (-1, 0, 0) x (0, 0, 1)
  circle A0 centre (4.5, 12) radius 1.725 projected
  line L0 (1.65, 13.6454) -> (4.5, 15.2909)
  line L1 (4.5, 15.2909) -> (7.35, 13.6454)
  line L2 (7.35, 13.6454) -> (7.35, 10.3546)
  line L3 (7.35, 10.3546) -> (4.5, 8.7091)
  line L4 (4.5, 8.7091) -> (1.65, 10.3546)
  line L5 (1.65, 10.3546) -> (1.65, 13.6454)
  circle A1 centre (4.5, -12) radius 1.725 projected
  line L6 (1.65, -10.3546) -> (4.5, -8.7091)
  line L7 (4.5, -8.7091) -> (7.35, -10.3546)
  line L8 (7.35, -10.3546) -> (7.35, -13.6454)
  line L9 (7.35, -13.6454) -> (4.5, -15.2909)
  line L10 (4.5, -15.2909) -> (1.65, -13.6454)
  line L11 (1.65, -13.6454) -> (1.65, -10.3546)
  point P0 (-3, 6)
  dimension "d43" = 2.85
  dimension "d44" = 2.85
extrude "Extrusion7" cut sketch "Sketch8" against normal blind 3 contours A0 | L0 L1 L2 L3 L4 L5 | A1 | L6 L7 L8 L9 L10 L11
sketch "Sketch9" plane through (0, 0, 0) normal (0, 0, -1) x (-1, 0, 0)
  line L0 (-24, -12) -> (-24, 0) projected
  line L1 (-12, -12) -> (-12, -6) projected
  line L2 (-24, 0) -> (-12, 0)
  line L3 (-12, 0) -> (-12, -12)
  line L4 (-12, -12) -> (-24, -12)
  line L5 (-24, -12) -> (-24, 0)
  line L6 (-12, -12) -> (0, -12)
  line L7 (0, -12) -> (0, -24)
  line L8 (0, -24) -> (-12, -24)
  line L9 (-12, -24) -> (-12, -12)
  point P0 (0, 0)
extrude "Extrusion8" cut sketch "Sketch9" against normal through all
fillet "Fillet2" radius 1.5 4 edges at (12, 0, 0) (0, 6, 0) (-6, 0, 0) (0, -12, 0)
sketch "Sketch10" plane through (0, 12, 12) normal (0, 1, 0) x (1, 0, 0)
  line L0 (6, 0) -> (0, 0) projected
  line L1 (12, 9) -> (6, 9) projected
  line L2 (0, 0) -> (6, 0)
  line L3 (6, 0) -> (6, 9)
  line L4 (6, 9) -> (0, 9)
  line L5 (0, 9) -> (0, 0)
  point P0 (0, 12)
extrude "Extrusion9" cut sketch "Sketch10" against normal blind 12
sketch "Sketch11" plane through (0, 0, 3) normal (0, 1, 0) x (1, 0, 0)
  line L0 (12, 0) -> (12, -9) projected
  line L1 (12, 0) -> (0, 0) projected
  line L2 (12, -9) -> (6, -9)
  line L3 (6, -9) -> (6, 0)
  line L4 (6, 0) -> (12, 0)
  line L5 (12, 0) -> (12, -9)
  point P0 (0, 3)
extrude "Extrusion10" add sketch "Sketch11" along normal blind 12
sketch "Sketch12" plane through (6, 0, 3) normal (-1, 0, 0) x (0, 0, 1)
  circle A0 centre (4.5, 6) radius 1.575
  line L0 (9, 0) -> (9, 12) projected
  line L1 (0, 12) -> (9, 12) projected
  point P0 (-3, 0)
  dimension "d54" = 3.15
  dimension "d55" = 4.5
  dimension "d56" = 6
extrude "Extrusion11" cut sketch "Sketch12" against normal blind 3
sketch "Sketch13" plane through (12, -6, 12) normal (1, 0, 0) x (0, 0, -1)
  circle A0 centre (4.5, 12) radius 1.575 projected
  line L0 (1.65, 13.6454) -> (4.5, 15.2909)
  line L1 (4.5, 15.2909) -> (7.35, 13.6454)
  line L2 (7.35, 13.6454) -> (7.35, 10.3546)
  line L3 (7.35, 10.3546) -> (4.5, 8.7091)
  line L4 (4.5, 8.7091) -> (1.65, 10.3546)
  line L5 (1.65, 10.3546) -> (1.65, 13.6454)
  point P0 (12, 6)
  dimension "d59" = 5.7
extrude "Extrusion12" cut sketch "Sketch13" against normal blind 3 contours A0 | L0 L1 L2 L3 L4 L5
properties part number "twoWayNEVer1"
